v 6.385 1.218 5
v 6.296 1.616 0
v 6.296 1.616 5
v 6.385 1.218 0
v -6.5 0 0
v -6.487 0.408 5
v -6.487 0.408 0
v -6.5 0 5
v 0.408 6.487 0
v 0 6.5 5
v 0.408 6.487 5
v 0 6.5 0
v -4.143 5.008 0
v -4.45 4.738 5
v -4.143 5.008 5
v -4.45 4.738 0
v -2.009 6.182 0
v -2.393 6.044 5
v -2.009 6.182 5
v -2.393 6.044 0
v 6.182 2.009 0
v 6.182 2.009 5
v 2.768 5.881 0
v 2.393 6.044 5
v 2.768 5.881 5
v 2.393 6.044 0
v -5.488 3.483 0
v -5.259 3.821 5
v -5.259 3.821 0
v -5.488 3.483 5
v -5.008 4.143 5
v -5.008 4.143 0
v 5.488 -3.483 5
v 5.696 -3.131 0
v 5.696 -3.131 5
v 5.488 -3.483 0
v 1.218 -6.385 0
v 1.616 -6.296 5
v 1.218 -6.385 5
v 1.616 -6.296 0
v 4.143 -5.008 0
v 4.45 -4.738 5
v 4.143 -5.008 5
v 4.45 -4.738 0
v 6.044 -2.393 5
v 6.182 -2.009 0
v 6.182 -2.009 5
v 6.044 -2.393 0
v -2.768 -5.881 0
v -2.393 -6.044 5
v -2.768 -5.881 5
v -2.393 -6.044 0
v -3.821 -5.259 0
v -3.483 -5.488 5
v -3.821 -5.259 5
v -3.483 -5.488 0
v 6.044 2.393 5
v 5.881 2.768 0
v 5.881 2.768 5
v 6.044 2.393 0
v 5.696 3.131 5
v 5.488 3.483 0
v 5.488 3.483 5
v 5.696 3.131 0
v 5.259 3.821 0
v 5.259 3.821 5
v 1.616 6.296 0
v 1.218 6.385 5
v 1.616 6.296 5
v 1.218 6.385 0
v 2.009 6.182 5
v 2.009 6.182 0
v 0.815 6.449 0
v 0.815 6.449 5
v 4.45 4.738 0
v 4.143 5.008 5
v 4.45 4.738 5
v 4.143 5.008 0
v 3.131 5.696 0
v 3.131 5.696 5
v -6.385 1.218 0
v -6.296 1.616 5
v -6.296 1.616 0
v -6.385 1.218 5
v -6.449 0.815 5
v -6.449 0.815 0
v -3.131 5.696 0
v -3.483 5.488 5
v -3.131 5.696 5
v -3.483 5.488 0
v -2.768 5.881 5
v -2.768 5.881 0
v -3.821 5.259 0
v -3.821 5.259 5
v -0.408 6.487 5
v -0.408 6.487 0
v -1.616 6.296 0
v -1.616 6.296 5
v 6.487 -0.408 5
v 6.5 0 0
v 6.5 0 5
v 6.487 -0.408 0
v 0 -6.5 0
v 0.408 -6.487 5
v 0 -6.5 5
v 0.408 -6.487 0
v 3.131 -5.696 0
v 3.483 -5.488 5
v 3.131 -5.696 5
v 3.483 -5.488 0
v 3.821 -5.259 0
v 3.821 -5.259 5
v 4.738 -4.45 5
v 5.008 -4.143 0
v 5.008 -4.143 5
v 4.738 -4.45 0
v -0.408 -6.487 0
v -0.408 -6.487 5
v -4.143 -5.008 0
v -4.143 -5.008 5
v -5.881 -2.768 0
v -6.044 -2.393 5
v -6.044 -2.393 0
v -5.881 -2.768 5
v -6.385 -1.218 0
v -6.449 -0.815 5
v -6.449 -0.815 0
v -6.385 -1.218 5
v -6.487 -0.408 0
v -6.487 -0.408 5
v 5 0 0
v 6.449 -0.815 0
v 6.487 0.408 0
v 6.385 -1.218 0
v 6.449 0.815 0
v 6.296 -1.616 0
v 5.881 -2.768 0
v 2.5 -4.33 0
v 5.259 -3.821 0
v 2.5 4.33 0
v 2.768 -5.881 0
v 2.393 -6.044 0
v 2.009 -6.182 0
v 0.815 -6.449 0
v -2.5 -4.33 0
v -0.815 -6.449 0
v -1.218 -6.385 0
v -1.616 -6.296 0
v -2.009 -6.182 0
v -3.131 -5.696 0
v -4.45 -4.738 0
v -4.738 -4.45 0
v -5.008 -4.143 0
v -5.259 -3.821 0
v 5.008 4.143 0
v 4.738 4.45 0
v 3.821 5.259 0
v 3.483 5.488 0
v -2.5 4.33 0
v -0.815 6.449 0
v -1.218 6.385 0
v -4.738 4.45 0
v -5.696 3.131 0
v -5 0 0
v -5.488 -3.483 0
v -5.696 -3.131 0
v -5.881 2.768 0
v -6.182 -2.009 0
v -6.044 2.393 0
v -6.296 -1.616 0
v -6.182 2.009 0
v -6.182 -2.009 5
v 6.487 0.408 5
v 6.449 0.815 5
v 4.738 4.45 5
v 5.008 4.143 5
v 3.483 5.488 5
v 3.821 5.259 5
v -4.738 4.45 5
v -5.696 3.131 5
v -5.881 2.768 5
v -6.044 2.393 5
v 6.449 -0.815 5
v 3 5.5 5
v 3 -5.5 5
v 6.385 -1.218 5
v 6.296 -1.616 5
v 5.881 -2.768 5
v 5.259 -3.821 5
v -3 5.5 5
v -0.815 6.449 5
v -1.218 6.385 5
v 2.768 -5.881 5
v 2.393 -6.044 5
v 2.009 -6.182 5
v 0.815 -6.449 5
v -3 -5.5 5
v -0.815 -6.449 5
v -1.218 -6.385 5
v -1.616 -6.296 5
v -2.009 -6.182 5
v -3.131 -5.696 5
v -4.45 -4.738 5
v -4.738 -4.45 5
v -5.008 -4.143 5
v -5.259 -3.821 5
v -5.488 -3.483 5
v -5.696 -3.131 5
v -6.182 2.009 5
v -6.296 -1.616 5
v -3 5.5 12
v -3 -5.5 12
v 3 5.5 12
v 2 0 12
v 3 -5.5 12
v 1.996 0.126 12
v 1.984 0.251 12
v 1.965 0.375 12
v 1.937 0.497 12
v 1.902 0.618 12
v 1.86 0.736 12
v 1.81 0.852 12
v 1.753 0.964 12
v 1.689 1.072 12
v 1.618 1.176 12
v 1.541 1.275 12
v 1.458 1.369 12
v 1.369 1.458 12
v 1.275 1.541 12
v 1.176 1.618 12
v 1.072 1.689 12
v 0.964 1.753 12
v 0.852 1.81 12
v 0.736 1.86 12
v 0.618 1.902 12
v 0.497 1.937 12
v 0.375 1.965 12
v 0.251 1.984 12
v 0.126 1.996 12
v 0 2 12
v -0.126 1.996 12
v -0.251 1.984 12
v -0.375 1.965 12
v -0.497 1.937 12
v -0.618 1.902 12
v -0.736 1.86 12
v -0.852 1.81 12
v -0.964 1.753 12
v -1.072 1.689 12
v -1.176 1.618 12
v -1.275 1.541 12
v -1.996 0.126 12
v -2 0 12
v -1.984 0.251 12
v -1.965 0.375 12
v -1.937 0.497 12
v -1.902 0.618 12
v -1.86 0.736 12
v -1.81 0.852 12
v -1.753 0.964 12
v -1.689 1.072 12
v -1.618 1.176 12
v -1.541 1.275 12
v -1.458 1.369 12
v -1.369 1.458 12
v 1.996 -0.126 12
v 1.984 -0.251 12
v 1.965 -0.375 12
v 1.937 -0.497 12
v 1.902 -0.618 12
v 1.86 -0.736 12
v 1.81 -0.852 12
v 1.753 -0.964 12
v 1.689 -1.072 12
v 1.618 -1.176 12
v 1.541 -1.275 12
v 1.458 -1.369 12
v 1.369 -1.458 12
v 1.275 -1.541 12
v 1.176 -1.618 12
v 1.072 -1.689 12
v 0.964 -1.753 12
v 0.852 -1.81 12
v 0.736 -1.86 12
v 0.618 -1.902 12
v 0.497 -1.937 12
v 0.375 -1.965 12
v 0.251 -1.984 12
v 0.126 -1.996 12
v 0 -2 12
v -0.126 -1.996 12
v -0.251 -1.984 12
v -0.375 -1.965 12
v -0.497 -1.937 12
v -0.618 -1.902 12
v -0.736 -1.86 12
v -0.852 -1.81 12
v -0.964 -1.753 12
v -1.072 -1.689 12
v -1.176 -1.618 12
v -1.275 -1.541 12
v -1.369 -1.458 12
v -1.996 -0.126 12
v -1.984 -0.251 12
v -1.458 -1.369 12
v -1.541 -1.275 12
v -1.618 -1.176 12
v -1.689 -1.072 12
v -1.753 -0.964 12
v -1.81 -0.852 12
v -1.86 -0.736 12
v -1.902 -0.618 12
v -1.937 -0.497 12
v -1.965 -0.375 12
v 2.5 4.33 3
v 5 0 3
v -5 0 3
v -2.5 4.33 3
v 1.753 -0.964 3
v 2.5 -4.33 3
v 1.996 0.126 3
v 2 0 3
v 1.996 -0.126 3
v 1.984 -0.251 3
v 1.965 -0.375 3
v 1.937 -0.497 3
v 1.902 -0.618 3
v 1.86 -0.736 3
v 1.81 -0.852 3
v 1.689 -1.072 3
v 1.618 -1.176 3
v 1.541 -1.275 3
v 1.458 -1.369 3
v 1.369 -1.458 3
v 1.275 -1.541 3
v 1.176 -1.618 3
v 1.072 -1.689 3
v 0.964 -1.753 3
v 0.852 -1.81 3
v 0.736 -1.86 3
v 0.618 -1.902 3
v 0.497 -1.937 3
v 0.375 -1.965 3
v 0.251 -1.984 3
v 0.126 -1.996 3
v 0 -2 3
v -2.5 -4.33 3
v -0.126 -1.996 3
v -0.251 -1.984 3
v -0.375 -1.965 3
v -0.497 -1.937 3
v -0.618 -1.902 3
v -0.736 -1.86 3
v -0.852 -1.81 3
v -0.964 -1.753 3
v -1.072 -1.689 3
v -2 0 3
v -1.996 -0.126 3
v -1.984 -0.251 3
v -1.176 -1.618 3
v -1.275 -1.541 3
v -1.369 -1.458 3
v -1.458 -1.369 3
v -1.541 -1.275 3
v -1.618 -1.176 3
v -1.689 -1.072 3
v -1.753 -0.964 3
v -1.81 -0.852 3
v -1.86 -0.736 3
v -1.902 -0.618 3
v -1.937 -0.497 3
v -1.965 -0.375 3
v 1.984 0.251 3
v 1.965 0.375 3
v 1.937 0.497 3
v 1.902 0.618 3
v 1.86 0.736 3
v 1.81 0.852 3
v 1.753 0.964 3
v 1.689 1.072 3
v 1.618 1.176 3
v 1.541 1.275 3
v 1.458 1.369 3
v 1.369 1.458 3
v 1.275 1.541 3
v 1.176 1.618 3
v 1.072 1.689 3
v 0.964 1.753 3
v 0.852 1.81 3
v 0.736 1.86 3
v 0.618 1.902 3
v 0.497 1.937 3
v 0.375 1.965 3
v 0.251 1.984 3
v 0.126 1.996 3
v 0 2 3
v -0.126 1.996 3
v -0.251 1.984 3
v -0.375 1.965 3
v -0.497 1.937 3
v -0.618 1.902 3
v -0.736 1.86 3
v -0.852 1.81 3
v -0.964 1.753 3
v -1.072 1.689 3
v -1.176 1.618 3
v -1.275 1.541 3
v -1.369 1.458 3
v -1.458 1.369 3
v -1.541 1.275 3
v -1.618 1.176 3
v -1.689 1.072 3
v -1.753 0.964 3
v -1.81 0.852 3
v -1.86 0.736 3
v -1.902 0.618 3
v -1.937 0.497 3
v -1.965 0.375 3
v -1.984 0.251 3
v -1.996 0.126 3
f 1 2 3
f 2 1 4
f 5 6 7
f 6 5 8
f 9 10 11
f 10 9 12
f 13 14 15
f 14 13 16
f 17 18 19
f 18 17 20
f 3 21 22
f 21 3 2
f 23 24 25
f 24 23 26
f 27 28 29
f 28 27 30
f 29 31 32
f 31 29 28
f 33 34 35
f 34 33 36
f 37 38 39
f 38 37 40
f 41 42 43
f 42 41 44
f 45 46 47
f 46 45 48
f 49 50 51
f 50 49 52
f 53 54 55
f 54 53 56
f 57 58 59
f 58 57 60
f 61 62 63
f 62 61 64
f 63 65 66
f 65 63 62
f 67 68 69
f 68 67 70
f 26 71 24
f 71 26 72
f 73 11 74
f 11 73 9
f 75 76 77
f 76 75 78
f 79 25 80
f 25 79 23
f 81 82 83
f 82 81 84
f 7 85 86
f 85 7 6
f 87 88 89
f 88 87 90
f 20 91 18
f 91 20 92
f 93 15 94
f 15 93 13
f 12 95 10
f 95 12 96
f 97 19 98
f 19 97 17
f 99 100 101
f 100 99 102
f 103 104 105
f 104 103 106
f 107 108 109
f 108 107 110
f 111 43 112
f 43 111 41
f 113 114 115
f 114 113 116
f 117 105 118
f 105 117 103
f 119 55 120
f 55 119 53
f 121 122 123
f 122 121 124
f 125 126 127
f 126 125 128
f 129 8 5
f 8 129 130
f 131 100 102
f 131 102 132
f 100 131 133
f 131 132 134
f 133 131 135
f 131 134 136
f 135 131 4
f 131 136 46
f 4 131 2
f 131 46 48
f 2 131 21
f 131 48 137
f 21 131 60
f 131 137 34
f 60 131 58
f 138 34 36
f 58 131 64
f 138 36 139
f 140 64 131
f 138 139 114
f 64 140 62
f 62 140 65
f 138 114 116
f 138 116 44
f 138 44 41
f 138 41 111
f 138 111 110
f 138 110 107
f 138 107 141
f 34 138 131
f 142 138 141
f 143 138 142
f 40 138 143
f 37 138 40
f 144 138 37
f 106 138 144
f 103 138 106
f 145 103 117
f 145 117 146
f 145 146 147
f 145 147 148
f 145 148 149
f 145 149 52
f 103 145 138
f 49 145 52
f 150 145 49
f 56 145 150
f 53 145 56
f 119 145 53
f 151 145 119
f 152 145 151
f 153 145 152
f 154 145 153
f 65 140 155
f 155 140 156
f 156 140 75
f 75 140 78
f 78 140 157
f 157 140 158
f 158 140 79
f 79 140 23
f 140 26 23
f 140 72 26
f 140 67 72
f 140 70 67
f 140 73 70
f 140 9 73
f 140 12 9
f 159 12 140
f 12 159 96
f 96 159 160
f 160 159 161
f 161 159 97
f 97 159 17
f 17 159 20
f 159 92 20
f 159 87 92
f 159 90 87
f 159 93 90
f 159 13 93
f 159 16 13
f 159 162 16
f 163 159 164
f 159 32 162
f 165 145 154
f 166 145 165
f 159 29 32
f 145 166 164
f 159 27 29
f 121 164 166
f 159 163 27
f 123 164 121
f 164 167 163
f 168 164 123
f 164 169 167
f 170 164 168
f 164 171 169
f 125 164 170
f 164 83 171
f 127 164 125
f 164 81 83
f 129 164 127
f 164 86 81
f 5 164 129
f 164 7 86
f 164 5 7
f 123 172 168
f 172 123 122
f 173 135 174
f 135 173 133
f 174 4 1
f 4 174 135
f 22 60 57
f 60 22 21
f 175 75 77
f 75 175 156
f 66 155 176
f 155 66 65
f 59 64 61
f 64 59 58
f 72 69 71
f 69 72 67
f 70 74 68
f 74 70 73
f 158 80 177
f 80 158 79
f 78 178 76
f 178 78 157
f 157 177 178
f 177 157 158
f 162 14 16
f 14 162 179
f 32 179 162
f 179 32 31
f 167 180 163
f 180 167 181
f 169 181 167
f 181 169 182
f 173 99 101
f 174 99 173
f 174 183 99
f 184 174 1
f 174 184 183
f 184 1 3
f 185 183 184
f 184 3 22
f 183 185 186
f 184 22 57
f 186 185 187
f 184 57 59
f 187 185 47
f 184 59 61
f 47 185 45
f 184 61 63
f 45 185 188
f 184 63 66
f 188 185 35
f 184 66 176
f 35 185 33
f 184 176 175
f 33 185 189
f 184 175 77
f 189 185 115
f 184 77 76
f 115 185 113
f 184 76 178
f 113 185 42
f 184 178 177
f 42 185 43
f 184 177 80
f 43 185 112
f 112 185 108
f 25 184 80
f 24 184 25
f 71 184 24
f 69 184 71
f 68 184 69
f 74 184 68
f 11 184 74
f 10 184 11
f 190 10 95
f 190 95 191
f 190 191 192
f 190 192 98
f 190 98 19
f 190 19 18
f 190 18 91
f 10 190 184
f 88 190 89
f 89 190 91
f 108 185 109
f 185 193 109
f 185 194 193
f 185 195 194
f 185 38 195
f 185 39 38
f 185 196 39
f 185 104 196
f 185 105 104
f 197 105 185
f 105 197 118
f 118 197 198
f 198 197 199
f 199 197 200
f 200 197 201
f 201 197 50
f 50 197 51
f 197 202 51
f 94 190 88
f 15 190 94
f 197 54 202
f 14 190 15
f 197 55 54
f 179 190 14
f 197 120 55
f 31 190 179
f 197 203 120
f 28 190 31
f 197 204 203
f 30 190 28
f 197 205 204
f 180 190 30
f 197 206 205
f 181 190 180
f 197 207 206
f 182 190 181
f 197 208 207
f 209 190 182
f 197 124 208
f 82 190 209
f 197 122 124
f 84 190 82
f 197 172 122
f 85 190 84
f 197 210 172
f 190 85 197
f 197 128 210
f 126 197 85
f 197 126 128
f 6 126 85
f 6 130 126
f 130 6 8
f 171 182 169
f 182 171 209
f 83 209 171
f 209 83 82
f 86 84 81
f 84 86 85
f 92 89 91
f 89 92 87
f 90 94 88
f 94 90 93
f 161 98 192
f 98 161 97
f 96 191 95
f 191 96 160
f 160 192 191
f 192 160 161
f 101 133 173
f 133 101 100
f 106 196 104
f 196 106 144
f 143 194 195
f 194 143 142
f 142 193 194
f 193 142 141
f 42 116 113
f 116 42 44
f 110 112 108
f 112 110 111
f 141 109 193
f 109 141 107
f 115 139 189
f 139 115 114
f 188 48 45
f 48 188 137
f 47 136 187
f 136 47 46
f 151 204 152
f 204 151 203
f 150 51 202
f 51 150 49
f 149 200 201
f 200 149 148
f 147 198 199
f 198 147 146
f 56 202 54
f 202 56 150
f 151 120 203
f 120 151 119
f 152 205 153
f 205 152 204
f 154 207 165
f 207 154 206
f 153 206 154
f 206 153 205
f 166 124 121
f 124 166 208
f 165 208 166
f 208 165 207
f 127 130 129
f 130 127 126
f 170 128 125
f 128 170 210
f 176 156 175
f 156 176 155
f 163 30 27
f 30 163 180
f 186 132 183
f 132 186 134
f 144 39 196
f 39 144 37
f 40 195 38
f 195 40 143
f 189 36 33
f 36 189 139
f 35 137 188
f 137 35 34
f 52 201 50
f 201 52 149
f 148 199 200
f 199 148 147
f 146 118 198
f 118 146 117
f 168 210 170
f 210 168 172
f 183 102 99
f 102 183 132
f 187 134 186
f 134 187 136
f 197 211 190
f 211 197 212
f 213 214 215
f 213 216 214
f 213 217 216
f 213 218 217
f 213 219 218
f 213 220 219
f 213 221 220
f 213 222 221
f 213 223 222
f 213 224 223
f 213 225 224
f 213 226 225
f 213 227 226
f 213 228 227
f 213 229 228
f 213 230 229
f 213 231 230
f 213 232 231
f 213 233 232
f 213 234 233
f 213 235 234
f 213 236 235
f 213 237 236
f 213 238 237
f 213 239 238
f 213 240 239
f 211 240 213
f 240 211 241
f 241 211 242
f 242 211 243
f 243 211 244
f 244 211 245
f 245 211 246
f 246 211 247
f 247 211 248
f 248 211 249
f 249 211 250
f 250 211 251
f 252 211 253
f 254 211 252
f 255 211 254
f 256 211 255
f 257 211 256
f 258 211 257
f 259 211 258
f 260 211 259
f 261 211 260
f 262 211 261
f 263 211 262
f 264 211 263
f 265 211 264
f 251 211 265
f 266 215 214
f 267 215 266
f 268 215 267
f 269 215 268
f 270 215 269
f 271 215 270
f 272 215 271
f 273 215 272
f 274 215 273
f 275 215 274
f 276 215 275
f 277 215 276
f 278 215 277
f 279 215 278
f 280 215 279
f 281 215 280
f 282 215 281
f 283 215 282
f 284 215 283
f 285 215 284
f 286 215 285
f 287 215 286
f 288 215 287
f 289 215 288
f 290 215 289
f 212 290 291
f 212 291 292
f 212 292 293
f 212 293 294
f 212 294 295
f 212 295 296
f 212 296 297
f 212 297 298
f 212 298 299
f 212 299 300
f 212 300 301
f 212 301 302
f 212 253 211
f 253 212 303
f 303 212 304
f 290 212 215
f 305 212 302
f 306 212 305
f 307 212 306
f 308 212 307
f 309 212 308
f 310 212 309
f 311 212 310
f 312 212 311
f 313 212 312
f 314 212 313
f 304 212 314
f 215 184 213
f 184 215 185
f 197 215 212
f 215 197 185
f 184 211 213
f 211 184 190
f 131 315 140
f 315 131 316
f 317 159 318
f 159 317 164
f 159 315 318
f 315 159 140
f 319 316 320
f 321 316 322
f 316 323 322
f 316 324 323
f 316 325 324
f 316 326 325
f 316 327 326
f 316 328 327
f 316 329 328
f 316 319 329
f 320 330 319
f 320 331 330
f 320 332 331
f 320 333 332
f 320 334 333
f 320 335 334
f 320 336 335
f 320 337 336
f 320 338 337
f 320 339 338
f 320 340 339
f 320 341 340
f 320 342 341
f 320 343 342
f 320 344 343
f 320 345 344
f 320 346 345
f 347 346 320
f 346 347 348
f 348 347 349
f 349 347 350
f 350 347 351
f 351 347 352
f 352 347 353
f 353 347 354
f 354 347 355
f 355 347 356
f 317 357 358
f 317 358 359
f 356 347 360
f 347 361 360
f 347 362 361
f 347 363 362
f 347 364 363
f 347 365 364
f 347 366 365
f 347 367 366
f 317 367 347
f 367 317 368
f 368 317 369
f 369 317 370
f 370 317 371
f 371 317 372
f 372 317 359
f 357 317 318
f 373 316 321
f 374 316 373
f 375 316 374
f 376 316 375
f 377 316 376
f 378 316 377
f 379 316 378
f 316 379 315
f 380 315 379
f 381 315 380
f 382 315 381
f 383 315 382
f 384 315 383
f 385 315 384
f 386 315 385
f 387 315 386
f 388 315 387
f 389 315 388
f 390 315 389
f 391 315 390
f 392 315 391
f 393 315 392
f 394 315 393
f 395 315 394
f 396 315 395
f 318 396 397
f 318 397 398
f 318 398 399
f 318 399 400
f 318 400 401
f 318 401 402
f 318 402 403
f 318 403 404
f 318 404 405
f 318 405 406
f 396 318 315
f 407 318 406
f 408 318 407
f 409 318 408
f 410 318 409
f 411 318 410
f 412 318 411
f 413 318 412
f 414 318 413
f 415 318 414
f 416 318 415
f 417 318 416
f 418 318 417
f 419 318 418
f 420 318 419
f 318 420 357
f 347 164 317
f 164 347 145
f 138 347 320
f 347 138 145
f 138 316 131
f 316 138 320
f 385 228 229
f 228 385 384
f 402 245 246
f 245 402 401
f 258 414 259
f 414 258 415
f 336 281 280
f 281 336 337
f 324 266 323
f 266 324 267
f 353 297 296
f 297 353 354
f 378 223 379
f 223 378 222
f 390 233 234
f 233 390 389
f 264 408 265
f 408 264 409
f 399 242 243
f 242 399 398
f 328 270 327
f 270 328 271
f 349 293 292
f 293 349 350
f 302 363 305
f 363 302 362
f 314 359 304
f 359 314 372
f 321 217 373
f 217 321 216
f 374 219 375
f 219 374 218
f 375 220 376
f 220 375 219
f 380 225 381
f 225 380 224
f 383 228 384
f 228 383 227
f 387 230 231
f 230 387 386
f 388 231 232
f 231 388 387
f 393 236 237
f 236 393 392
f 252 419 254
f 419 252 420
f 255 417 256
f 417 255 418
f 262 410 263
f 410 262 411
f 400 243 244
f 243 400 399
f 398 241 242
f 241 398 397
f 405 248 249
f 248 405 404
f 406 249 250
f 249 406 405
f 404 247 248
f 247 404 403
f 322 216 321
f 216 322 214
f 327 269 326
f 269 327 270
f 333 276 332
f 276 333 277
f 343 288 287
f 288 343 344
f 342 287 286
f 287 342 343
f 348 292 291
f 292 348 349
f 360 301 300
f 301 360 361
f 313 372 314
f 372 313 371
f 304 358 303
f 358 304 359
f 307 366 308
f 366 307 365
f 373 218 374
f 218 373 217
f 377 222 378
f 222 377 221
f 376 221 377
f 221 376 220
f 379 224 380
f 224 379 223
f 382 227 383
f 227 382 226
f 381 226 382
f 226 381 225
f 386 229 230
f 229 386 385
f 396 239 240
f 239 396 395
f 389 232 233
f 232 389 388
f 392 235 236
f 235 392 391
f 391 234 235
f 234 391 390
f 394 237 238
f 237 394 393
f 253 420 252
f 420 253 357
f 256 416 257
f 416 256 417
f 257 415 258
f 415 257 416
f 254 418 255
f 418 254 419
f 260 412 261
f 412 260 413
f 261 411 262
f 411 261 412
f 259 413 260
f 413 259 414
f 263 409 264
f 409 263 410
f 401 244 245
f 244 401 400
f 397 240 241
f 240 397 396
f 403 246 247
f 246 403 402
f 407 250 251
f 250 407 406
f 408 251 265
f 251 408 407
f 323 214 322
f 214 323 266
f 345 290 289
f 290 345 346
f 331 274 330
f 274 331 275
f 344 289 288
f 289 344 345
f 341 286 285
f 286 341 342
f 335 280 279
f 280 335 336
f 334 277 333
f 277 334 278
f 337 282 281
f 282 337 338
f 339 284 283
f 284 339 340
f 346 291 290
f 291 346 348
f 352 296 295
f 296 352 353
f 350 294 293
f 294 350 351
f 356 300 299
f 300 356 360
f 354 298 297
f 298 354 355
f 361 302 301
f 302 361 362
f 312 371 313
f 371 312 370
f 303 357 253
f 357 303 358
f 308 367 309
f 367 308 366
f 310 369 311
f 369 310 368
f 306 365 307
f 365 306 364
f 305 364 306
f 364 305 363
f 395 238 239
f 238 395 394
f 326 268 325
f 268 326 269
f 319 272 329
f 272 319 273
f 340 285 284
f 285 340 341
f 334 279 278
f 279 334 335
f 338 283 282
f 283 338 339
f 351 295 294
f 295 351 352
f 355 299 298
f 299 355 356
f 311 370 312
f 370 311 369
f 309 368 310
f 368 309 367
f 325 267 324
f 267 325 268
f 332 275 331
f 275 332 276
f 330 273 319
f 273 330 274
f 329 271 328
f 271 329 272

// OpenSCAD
difference()
{
    union()
    {
        cylinder(d = 13, h = 5, $fn=100);
        translate([0, 0, 7])
        cube([6, 11, 10], center = true);
    }
    
    cylinder(d = 10, h = 3, $fn=6);
    
    cylinder(d = 4, h = 20, $fn=100);
}
